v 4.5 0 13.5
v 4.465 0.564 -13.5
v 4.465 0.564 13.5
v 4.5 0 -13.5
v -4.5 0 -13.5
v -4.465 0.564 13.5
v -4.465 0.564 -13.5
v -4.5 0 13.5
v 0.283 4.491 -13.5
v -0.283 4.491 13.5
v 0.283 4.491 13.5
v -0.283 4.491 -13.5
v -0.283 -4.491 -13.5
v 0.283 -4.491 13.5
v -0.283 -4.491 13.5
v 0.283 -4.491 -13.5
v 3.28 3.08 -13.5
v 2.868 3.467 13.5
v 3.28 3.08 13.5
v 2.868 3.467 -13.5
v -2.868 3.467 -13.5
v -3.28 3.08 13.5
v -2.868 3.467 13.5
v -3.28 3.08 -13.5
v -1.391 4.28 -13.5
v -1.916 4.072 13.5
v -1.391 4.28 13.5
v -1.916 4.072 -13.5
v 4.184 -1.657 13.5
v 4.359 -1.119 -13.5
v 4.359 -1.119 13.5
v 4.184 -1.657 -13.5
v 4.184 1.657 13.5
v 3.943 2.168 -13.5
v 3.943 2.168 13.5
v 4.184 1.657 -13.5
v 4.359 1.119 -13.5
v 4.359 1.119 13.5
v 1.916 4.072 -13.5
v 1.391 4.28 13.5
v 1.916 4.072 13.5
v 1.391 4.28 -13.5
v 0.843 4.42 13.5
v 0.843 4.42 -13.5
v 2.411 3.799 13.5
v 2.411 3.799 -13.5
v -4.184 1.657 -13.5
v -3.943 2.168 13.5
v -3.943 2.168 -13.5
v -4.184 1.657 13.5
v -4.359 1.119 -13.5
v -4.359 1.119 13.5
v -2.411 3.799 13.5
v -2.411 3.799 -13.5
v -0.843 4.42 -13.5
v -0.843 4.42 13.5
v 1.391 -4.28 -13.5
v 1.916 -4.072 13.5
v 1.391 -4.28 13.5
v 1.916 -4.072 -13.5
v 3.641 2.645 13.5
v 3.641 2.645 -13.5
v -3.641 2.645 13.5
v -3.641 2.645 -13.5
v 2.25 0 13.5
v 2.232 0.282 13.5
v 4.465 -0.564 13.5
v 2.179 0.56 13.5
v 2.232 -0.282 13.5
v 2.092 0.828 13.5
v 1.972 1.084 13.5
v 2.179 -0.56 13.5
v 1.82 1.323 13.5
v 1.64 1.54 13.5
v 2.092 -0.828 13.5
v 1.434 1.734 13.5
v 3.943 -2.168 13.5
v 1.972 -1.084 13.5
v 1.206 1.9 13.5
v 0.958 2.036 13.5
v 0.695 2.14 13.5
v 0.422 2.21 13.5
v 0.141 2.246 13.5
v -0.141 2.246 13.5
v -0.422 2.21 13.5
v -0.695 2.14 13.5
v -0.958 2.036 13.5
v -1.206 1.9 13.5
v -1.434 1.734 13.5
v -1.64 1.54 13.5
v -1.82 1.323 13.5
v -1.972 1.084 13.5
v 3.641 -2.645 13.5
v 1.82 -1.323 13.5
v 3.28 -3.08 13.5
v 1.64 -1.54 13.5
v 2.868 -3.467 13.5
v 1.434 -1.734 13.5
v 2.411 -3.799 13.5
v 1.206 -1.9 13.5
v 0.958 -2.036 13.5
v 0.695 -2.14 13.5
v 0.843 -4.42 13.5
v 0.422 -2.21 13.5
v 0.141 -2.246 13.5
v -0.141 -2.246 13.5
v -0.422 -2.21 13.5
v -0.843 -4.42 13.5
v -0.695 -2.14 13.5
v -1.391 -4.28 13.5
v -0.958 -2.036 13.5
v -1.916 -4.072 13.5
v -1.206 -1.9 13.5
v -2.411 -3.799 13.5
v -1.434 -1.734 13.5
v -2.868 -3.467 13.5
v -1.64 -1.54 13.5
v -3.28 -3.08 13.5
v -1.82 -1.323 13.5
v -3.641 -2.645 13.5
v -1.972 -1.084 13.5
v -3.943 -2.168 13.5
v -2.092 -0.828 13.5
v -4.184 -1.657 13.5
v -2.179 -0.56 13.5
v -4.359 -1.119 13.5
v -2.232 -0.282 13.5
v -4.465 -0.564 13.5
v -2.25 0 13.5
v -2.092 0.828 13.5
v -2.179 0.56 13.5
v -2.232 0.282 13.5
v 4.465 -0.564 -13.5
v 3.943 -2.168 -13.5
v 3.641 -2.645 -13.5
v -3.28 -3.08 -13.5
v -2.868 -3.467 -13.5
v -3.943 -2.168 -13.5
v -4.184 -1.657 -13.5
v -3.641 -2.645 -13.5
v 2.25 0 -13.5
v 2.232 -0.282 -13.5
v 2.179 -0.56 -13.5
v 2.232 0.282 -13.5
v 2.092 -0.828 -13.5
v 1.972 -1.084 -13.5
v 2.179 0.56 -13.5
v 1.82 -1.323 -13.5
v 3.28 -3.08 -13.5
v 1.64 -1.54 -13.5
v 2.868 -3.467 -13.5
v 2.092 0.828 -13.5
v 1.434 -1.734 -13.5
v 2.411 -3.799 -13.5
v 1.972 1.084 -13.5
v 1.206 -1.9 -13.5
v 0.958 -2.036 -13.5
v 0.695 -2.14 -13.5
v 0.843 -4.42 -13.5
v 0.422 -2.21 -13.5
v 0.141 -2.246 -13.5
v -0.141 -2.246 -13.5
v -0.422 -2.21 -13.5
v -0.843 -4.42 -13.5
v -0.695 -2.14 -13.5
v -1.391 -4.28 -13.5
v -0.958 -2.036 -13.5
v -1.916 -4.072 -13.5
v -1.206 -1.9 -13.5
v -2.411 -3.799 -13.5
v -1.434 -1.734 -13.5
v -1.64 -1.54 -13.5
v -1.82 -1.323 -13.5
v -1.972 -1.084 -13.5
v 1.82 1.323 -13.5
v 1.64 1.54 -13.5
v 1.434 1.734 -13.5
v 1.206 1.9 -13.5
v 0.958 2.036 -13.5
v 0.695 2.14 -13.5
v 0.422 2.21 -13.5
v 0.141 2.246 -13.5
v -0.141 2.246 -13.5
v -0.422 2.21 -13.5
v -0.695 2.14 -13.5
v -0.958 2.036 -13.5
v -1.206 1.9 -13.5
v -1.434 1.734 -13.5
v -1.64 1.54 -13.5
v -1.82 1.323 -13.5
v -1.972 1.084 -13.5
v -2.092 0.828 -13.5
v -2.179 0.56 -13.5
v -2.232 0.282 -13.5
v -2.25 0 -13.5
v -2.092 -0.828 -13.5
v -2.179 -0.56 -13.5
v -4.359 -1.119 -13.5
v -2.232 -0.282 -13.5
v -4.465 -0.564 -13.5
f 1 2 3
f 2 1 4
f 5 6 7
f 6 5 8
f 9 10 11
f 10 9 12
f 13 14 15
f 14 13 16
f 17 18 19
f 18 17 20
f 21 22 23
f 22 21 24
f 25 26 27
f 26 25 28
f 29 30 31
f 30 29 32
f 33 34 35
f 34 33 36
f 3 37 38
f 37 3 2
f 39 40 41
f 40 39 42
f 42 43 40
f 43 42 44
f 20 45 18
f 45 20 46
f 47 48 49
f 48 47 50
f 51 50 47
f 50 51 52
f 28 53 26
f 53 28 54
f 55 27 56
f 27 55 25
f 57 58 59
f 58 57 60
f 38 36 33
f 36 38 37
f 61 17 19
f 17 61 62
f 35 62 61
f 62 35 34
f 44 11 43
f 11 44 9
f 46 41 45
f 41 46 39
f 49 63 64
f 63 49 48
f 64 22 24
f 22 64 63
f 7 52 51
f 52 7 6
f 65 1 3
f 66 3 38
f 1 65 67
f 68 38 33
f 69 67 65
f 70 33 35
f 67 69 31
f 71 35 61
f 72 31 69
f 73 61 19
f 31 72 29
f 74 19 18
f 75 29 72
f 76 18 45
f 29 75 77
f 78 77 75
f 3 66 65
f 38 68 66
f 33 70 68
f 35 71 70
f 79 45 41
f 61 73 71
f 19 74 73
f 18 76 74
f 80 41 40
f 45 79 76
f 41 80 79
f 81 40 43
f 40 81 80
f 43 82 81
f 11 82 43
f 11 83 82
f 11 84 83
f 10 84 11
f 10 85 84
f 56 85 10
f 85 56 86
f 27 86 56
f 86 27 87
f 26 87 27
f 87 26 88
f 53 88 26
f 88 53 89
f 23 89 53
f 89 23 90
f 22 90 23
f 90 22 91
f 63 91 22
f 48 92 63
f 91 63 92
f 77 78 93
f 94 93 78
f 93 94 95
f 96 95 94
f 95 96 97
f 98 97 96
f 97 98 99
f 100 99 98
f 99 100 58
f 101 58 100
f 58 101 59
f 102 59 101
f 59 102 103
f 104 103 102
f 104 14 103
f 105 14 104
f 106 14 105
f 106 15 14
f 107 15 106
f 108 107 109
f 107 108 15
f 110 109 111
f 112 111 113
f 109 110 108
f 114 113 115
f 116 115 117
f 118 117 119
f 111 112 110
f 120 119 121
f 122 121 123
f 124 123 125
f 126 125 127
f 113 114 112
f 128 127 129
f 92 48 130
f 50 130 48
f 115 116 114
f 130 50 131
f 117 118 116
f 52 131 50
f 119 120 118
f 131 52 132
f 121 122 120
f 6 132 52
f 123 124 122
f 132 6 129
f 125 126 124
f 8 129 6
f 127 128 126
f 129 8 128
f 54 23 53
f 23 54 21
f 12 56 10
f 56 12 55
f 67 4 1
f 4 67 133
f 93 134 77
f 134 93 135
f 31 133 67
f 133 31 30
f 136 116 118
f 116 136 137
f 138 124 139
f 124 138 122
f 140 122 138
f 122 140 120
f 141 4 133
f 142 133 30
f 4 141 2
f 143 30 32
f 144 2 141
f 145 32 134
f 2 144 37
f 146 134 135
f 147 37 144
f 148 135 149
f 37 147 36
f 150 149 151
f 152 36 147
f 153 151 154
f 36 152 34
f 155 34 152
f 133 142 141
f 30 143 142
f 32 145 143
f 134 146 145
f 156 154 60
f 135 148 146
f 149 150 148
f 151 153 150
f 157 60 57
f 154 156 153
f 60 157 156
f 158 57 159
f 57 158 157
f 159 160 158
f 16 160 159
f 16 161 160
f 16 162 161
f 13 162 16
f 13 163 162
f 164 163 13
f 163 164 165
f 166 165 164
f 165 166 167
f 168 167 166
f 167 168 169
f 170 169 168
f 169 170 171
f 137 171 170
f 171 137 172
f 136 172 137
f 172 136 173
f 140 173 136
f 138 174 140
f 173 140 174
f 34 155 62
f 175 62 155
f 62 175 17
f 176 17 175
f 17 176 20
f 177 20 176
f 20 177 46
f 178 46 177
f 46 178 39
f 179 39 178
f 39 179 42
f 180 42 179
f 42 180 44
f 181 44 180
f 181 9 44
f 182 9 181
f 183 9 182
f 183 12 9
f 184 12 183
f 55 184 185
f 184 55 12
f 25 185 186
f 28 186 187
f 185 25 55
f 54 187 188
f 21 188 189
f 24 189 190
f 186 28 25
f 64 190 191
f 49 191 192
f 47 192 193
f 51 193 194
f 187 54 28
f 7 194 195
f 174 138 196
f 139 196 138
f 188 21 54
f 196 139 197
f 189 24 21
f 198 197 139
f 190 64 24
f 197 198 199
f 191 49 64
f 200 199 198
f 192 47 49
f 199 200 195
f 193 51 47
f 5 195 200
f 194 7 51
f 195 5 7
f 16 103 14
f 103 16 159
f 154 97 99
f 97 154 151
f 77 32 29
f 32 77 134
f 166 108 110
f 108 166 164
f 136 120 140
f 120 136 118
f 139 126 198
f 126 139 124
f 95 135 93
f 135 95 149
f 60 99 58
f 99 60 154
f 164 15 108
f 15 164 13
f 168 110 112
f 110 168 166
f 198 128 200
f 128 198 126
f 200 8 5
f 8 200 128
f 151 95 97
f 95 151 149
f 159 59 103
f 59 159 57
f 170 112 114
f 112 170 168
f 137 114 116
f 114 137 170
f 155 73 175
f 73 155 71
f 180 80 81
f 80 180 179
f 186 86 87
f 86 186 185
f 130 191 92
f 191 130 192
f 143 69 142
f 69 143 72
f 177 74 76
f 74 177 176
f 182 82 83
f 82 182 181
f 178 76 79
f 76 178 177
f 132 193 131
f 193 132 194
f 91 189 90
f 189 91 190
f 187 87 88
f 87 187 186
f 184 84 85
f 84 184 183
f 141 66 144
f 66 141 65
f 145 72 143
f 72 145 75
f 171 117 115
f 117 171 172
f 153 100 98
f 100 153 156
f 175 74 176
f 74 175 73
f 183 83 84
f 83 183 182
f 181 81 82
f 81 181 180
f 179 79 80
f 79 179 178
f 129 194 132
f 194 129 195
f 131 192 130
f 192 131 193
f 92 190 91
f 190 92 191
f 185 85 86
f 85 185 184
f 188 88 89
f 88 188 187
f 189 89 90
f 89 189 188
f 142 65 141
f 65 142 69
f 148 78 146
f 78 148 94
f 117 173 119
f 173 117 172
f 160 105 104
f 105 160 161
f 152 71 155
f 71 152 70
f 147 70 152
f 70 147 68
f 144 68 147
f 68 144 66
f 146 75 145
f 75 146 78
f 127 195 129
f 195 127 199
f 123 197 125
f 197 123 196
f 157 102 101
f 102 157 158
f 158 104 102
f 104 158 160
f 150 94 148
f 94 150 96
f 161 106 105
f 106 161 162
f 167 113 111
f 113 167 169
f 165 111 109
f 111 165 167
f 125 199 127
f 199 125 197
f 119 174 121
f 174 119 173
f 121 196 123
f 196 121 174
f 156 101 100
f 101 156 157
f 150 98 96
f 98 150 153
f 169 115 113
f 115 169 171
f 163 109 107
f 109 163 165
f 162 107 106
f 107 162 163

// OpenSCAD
$fn = 50;


difference() {
	union() {
		translate(v = [0, 0, -13.5000000000]) {
			cylinder(h = 27, r = 4.5000000000);
		}
	}
	union() {
		translate(v = [0, 0, -100.0000000000]) {
			cylinder(h = 200, r = 2.2500000000);
		}
	}
}
